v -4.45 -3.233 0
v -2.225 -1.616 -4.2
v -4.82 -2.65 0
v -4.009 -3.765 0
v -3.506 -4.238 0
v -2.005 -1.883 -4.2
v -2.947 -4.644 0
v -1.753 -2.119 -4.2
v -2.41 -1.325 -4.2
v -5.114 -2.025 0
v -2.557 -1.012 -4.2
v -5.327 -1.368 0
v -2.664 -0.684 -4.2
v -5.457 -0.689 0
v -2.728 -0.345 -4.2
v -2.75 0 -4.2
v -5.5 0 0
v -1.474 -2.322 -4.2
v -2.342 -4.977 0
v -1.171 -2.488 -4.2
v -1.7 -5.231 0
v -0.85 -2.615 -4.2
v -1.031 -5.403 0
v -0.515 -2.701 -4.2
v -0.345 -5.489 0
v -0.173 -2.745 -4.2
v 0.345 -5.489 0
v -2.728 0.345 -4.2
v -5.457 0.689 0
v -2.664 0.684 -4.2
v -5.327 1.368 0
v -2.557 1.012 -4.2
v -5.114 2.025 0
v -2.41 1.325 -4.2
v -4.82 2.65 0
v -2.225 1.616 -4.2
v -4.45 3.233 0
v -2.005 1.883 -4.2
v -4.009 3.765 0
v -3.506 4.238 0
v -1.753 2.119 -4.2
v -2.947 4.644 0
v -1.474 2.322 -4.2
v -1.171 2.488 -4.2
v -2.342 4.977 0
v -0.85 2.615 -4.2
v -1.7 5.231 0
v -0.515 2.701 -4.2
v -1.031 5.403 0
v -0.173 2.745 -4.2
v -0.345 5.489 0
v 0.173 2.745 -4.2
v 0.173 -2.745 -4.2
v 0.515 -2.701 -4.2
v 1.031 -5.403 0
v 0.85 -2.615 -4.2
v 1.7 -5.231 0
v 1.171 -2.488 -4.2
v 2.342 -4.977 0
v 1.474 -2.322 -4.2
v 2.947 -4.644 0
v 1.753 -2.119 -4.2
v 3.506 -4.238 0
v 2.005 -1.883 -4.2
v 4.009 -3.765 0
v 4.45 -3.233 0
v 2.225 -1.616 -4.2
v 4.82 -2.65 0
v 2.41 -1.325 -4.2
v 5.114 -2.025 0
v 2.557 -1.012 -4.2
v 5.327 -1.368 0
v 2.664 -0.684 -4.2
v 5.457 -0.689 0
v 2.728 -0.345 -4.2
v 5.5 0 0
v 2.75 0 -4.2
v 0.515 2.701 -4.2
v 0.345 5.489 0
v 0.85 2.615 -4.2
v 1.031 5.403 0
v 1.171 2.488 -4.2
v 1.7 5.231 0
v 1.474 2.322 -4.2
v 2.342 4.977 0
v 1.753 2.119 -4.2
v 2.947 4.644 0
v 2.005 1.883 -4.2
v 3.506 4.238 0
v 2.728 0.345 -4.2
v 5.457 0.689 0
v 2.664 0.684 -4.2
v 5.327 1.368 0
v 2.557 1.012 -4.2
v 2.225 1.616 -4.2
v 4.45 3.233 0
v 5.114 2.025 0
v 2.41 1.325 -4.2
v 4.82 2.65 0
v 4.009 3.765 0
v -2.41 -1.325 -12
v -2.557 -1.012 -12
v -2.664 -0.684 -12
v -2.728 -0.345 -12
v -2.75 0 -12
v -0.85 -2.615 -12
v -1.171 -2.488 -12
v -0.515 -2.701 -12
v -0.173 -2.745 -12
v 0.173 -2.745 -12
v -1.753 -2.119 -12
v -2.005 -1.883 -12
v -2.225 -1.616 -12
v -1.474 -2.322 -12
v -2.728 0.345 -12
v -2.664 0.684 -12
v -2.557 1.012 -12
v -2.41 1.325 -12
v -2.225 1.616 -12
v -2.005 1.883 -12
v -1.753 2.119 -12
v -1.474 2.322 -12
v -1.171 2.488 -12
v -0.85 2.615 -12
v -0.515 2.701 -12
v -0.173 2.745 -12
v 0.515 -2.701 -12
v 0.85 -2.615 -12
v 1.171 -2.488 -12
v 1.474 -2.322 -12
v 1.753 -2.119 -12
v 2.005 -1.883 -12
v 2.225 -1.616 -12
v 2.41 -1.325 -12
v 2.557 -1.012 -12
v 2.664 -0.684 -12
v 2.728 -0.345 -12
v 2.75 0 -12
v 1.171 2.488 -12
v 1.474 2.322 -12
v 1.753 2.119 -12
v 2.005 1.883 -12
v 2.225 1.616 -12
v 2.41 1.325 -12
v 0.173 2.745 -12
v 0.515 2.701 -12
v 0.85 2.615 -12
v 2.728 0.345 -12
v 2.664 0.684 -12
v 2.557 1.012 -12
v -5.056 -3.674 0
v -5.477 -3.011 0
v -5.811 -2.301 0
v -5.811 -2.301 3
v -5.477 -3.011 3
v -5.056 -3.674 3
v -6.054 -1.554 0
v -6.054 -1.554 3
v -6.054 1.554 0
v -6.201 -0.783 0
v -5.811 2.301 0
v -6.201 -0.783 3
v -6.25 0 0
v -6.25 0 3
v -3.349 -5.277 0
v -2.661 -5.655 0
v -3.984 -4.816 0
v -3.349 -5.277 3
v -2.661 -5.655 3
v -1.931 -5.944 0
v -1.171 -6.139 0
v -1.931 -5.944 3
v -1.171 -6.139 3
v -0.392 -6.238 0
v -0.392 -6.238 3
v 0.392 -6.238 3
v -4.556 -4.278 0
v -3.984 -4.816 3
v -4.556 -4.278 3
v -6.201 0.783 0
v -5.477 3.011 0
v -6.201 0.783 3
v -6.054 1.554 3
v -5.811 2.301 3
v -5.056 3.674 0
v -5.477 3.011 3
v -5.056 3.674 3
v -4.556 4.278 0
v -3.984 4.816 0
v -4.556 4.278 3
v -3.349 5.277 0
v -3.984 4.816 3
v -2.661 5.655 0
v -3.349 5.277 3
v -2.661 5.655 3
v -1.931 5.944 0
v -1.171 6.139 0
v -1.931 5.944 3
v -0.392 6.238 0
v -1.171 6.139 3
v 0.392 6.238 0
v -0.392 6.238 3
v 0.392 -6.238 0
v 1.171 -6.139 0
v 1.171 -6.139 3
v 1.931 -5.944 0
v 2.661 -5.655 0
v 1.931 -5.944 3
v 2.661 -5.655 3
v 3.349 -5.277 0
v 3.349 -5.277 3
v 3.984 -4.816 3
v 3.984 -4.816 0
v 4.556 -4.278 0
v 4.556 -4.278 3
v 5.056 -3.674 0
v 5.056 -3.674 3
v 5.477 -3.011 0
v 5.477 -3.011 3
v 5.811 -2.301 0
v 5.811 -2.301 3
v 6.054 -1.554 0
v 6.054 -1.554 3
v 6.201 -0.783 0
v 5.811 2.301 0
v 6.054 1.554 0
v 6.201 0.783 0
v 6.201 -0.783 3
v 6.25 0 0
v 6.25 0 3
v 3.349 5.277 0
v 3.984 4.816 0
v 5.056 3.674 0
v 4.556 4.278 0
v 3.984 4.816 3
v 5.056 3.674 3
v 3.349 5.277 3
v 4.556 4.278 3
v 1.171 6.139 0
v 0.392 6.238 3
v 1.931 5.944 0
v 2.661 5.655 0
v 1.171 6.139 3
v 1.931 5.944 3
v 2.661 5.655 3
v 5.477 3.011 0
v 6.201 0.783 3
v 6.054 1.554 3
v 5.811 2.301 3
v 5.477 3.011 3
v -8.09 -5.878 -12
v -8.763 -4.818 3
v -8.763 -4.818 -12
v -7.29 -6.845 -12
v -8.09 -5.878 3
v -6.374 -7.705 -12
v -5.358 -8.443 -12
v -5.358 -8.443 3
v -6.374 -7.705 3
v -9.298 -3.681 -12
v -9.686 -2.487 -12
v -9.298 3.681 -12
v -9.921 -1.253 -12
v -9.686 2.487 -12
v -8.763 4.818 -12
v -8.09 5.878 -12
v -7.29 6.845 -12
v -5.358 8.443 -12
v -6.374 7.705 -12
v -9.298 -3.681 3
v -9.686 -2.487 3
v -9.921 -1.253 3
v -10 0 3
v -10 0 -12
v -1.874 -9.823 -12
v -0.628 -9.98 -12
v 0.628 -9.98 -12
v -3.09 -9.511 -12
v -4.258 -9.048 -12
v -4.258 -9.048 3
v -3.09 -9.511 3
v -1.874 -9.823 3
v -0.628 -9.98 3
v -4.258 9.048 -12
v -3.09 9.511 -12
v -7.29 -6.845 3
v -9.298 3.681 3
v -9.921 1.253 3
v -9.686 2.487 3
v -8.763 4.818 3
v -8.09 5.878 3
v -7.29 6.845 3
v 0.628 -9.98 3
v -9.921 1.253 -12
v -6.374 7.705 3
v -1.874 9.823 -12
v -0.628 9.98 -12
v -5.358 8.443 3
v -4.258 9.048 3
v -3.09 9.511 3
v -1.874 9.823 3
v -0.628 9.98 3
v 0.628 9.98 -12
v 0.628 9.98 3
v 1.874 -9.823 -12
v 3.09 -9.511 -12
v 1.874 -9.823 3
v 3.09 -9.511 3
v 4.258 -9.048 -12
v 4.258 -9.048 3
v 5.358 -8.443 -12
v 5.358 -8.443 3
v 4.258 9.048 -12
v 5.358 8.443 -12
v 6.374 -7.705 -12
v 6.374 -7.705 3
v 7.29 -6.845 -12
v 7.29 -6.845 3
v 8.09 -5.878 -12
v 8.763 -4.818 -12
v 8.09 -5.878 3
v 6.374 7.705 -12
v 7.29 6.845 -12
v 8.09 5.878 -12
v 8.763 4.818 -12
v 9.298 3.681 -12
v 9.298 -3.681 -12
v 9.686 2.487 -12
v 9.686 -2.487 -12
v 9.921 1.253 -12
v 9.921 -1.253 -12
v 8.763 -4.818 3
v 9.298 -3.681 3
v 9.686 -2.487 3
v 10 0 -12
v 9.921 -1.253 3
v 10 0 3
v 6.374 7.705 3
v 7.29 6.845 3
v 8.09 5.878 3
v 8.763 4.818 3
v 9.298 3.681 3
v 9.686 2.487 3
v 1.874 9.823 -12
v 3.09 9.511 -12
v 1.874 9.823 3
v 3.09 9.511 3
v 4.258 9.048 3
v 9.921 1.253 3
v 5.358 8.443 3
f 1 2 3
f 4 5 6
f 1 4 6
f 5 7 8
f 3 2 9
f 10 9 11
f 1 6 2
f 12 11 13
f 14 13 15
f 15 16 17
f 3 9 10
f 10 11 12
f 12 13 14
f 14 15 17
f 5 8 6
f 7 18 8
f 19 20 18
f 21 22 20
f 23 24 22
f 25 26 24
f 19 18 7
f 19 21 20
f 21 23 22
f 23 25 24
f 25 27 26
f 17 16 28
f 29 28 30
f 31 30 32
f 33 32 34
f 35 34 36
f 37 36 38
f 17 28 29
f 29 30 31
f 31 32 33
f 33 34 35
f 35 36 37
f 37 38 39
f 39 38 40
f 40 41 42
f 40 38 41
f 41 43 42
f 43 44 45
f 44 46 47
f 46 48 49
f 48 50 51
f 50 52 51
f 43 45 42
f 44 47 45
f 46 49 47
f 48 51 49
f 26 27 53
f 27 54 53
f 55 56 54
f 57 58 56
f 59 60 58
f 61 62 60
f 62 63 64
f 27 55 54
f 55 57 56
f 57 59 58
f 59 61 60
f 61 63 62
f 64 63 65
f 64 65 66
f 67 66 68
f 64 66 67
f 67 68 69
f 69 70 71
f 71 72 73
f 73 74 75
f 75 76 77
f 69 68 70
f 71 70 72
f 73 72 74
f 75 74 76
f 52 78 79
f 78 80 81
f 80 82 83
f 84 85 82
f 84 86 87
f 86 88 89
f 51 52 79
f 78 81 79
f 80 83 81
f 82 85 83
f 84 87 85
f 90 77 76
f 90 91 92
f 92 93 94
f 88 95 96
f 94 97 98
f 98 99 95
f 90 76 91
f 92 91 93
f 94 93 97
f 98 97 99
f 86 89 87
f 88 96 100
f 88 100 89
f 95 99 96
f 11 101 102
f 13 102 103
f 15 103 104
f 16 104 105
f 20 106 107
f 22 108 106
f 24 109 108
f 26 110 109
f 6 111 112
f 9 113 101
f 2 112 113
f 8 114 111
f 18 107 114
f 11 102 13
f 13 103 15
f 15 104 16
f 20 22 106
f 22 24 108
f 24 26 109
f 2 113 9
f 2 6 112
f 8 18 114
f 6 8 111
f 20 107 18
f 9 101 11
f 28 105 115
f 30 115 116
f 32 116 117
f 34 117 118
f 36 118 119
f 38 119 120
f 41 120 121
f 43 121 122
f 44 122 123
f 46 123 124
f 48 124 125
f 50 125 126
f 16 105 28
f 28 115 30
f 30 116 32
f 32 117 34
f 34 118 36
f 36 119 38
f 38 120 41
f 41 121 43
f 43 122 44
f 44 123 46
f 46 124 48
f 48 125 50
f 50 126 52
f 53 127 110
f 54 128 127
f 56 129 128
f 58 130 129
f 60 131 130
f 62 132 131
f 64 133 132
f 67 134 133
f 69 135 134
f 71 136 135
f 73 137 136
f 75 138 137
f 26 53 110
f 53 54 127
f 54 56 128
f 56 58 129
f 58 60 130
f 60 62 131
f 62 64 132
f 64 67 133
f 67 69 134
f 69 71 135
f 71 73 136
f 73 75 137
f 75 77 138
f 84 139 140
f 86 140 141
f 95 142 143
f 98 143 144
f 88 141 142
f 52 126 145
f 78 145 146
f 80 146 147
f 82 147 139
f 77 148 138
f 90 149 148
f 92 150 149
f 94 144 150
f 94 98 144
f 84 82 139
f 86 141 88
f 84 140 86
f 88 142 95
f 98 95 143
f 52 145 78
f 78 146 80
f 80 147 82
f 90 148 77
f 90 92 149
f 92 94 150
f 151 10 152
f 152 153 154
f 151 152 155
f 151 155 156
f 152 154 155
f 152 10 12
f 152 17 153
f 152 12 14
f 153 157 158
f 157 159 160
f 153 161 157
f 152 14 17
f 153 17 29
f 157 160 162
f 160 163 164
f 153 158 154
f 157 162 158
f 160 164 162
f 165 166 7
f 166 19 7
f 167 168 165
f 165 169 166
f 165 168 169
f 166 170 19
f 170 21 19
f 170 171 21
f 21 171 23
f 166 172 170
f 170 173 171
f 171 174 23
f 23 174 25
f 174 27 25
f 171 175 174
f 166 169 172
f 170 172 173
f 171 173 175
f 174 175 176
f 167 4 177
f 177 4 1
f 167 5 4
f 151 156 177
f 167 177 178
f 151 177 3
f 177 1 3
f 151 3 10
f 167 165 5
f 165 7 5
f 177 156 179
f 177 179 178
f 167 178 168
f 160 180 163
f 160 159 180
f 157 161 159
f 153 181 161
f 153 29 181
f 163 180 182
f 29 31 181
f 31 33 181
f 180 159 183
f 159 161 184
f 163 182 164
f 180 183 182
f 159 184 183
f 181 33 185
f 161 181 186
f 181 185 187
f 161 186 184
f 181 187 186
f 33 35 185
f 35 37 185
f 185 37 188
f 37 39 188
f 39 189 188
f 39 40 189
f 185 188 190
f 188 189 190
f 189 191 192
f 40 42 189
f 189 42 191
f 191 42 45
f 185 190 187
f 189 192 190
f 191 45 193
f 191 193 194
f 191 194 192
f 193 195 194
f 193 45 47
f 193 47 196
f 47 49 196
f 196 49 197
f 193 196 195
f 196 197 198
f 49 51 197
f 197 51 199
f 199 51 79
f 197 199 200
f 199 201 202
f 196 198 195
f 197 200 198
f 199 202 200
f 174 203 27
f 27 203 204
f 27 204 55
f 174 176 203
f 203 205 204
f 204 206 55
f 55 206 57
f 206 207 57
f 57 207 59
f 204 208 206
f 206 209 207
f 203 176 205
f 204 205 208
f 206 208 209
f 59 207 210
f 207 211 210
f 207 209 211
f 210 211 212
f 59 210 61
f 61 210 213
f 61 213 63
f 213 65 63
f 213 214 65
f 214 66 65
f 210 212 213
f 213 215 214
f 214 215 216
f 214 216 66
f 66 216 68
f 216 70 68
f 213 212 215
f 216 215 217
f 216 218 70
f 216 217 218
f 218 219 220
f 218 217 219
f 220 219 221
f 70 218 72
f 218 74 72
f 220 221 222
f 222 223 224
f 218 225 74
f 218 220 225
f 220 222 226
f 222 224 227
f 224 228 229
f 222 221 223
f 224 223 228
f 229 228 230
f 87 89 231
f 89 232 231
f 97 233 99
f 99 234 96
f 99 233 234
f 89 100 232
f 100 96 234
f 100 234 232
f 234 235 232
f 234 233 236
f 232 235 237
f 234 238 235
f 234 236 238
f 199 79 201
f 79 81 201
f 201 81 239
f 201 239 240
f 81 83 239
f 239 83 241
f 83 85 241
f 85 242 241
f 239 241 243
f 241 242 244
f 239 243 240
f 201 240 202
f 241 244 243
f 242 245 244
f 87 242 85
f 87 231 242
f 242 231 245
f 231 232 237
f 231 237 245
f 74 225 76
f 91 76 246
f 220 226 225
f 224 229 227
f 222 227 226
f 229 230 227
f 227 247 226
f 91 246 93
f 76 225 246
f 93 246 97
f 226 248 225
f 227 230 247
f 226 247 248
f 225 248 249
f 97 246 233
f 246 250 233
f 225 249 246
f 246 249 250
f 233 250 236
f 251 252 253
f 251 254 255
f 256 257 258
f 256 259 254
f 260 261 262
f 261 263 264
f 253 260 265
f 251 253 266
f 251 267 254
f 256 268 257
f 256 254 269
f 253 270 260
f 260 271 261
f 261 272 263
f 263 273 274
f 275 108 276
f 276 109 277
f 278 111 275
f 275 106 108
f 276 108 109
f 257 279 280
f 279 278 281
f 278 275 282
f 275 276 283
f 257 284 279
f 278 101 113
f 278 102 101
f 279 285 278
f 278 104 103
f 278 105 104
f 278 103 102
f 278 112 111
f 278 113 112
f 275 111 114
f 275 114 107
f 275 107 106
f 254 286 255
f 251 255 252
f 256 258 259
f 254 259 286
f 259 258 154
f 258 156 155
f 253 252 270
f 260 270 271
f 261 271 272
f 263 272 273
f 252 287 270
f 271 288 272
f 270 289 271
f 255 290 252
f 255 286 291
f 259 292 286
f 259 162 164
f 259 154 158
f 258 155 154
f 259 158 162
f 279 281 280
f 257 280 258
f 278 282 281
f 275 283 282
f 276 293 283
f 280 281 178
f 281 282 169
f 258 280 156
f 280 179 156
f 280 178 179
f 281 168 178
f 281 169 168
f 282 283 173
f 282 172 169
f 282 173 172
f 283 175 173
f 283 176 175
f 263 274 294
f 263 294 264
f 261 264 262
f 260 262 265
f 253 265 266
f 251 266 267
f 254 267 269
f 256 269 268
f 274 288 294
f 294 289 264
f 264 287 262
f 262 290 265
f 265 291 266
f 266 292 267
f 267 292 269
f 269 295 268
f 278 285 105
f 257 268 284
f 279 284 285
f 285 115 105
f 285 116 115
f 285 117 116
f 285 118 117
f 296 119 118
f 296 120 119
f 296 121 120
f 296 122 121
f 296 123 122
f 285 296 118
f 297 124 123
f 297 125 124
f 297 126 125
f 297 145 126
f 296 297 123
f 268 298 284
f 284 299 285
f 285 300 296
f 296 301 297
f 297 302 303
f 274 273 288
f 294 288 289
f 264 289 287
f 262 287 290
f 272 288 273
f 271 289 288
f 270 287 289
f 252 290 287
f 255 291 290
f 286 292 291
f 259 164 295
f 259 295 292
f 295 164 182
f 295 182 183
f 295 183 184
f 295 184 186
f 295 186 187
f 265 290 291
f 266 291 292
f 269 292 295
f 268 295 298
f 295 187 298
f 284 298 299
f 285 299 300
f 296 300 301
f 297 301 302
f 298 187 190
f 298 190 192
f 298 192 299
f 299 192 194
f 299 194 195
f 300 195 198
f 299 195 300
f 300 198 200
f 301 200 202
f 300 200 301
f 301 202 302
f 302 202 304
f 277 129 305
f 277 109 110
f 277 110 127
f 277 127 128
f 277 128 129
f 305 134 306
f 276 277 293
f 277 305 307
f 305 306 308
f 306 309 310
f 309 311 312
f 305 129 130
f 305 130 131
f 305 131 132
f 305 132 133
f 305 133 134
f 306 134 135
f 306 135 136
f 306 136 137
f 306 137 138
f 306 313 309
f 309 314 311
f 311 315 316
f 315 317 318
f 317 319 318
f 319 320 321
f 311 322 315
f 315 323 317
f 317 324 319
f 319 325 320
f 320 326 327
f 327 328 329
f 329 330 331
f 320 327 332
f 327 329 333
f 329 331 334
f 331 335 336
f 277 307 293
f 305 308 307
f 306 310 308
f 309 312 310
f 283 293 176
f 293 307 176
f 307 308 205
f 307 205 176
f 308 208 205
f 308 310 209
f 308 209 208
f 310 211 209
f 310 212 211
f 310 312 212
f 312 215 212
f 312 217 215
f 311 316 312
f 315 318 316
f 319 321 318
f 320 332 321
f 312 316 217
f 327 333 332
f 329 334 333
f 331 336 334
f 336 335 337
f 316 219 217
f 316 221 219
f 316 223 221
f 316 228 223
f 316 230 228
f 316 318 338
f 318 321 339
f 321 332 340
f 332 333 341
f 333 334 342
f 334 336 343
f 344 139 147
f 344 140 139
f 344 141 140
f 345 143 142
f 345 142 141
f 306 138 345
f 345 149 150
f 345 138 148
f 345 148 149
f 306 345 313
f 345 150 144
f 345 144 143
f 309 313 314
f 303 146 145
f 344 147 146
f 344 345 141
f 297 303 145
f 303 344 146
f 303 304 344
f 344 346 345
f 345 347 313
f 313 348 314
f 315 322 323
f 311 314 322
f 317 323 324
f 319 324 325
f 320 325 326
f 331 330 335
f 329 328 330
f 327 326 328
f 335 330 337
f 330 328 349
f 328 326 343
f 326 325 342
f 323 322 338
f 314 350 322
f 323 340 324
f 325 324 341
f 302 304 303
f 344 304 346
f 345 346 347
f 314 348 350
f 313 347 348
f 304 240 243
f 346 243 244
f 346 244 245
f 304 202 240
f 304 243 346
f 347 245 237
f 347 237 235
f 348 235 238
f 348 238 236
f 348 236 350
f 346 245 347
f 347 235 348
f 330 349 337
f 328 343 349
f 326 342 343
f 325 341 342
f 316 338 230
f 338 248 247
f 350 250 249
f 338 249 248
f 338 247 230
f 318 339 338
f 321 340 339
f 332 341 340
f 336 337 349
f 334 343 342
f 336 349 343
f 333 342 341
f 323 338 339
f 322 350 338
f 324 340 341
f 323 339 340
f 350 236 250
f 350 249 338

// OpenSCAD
$fn = 50;

difference() {
	union() {
		translate(v = [0, 0, -12.0]) {
			cylinder(h = 15, r = 10.0);
		}
	}
	union() {
		translate(v = [0, 0, 0]) {
			rotate(a = [0, 0, 0]) {
				difference() {
					union() {
						translate(v = [0, 0, -15.0]) {
							cylinder(h = 15, r = 2.25);
						}
						translate(v = [0, 0, -4.2]) {
							cylinder(h = 4.2, r1 = 2.75, r2 = 5.5);
						}
						translate(v = [0, 0, -15.0]) {
							cylinder(h = 15, r = 2.75);
						}
						translate(v = [0, 0, -15.0]) {
							cylinder(h = 15, r = 2.25);
						}
					}
					union();
				}
			}
		}
		#cylinder(h = 3, r = 6.25);
	}
}
